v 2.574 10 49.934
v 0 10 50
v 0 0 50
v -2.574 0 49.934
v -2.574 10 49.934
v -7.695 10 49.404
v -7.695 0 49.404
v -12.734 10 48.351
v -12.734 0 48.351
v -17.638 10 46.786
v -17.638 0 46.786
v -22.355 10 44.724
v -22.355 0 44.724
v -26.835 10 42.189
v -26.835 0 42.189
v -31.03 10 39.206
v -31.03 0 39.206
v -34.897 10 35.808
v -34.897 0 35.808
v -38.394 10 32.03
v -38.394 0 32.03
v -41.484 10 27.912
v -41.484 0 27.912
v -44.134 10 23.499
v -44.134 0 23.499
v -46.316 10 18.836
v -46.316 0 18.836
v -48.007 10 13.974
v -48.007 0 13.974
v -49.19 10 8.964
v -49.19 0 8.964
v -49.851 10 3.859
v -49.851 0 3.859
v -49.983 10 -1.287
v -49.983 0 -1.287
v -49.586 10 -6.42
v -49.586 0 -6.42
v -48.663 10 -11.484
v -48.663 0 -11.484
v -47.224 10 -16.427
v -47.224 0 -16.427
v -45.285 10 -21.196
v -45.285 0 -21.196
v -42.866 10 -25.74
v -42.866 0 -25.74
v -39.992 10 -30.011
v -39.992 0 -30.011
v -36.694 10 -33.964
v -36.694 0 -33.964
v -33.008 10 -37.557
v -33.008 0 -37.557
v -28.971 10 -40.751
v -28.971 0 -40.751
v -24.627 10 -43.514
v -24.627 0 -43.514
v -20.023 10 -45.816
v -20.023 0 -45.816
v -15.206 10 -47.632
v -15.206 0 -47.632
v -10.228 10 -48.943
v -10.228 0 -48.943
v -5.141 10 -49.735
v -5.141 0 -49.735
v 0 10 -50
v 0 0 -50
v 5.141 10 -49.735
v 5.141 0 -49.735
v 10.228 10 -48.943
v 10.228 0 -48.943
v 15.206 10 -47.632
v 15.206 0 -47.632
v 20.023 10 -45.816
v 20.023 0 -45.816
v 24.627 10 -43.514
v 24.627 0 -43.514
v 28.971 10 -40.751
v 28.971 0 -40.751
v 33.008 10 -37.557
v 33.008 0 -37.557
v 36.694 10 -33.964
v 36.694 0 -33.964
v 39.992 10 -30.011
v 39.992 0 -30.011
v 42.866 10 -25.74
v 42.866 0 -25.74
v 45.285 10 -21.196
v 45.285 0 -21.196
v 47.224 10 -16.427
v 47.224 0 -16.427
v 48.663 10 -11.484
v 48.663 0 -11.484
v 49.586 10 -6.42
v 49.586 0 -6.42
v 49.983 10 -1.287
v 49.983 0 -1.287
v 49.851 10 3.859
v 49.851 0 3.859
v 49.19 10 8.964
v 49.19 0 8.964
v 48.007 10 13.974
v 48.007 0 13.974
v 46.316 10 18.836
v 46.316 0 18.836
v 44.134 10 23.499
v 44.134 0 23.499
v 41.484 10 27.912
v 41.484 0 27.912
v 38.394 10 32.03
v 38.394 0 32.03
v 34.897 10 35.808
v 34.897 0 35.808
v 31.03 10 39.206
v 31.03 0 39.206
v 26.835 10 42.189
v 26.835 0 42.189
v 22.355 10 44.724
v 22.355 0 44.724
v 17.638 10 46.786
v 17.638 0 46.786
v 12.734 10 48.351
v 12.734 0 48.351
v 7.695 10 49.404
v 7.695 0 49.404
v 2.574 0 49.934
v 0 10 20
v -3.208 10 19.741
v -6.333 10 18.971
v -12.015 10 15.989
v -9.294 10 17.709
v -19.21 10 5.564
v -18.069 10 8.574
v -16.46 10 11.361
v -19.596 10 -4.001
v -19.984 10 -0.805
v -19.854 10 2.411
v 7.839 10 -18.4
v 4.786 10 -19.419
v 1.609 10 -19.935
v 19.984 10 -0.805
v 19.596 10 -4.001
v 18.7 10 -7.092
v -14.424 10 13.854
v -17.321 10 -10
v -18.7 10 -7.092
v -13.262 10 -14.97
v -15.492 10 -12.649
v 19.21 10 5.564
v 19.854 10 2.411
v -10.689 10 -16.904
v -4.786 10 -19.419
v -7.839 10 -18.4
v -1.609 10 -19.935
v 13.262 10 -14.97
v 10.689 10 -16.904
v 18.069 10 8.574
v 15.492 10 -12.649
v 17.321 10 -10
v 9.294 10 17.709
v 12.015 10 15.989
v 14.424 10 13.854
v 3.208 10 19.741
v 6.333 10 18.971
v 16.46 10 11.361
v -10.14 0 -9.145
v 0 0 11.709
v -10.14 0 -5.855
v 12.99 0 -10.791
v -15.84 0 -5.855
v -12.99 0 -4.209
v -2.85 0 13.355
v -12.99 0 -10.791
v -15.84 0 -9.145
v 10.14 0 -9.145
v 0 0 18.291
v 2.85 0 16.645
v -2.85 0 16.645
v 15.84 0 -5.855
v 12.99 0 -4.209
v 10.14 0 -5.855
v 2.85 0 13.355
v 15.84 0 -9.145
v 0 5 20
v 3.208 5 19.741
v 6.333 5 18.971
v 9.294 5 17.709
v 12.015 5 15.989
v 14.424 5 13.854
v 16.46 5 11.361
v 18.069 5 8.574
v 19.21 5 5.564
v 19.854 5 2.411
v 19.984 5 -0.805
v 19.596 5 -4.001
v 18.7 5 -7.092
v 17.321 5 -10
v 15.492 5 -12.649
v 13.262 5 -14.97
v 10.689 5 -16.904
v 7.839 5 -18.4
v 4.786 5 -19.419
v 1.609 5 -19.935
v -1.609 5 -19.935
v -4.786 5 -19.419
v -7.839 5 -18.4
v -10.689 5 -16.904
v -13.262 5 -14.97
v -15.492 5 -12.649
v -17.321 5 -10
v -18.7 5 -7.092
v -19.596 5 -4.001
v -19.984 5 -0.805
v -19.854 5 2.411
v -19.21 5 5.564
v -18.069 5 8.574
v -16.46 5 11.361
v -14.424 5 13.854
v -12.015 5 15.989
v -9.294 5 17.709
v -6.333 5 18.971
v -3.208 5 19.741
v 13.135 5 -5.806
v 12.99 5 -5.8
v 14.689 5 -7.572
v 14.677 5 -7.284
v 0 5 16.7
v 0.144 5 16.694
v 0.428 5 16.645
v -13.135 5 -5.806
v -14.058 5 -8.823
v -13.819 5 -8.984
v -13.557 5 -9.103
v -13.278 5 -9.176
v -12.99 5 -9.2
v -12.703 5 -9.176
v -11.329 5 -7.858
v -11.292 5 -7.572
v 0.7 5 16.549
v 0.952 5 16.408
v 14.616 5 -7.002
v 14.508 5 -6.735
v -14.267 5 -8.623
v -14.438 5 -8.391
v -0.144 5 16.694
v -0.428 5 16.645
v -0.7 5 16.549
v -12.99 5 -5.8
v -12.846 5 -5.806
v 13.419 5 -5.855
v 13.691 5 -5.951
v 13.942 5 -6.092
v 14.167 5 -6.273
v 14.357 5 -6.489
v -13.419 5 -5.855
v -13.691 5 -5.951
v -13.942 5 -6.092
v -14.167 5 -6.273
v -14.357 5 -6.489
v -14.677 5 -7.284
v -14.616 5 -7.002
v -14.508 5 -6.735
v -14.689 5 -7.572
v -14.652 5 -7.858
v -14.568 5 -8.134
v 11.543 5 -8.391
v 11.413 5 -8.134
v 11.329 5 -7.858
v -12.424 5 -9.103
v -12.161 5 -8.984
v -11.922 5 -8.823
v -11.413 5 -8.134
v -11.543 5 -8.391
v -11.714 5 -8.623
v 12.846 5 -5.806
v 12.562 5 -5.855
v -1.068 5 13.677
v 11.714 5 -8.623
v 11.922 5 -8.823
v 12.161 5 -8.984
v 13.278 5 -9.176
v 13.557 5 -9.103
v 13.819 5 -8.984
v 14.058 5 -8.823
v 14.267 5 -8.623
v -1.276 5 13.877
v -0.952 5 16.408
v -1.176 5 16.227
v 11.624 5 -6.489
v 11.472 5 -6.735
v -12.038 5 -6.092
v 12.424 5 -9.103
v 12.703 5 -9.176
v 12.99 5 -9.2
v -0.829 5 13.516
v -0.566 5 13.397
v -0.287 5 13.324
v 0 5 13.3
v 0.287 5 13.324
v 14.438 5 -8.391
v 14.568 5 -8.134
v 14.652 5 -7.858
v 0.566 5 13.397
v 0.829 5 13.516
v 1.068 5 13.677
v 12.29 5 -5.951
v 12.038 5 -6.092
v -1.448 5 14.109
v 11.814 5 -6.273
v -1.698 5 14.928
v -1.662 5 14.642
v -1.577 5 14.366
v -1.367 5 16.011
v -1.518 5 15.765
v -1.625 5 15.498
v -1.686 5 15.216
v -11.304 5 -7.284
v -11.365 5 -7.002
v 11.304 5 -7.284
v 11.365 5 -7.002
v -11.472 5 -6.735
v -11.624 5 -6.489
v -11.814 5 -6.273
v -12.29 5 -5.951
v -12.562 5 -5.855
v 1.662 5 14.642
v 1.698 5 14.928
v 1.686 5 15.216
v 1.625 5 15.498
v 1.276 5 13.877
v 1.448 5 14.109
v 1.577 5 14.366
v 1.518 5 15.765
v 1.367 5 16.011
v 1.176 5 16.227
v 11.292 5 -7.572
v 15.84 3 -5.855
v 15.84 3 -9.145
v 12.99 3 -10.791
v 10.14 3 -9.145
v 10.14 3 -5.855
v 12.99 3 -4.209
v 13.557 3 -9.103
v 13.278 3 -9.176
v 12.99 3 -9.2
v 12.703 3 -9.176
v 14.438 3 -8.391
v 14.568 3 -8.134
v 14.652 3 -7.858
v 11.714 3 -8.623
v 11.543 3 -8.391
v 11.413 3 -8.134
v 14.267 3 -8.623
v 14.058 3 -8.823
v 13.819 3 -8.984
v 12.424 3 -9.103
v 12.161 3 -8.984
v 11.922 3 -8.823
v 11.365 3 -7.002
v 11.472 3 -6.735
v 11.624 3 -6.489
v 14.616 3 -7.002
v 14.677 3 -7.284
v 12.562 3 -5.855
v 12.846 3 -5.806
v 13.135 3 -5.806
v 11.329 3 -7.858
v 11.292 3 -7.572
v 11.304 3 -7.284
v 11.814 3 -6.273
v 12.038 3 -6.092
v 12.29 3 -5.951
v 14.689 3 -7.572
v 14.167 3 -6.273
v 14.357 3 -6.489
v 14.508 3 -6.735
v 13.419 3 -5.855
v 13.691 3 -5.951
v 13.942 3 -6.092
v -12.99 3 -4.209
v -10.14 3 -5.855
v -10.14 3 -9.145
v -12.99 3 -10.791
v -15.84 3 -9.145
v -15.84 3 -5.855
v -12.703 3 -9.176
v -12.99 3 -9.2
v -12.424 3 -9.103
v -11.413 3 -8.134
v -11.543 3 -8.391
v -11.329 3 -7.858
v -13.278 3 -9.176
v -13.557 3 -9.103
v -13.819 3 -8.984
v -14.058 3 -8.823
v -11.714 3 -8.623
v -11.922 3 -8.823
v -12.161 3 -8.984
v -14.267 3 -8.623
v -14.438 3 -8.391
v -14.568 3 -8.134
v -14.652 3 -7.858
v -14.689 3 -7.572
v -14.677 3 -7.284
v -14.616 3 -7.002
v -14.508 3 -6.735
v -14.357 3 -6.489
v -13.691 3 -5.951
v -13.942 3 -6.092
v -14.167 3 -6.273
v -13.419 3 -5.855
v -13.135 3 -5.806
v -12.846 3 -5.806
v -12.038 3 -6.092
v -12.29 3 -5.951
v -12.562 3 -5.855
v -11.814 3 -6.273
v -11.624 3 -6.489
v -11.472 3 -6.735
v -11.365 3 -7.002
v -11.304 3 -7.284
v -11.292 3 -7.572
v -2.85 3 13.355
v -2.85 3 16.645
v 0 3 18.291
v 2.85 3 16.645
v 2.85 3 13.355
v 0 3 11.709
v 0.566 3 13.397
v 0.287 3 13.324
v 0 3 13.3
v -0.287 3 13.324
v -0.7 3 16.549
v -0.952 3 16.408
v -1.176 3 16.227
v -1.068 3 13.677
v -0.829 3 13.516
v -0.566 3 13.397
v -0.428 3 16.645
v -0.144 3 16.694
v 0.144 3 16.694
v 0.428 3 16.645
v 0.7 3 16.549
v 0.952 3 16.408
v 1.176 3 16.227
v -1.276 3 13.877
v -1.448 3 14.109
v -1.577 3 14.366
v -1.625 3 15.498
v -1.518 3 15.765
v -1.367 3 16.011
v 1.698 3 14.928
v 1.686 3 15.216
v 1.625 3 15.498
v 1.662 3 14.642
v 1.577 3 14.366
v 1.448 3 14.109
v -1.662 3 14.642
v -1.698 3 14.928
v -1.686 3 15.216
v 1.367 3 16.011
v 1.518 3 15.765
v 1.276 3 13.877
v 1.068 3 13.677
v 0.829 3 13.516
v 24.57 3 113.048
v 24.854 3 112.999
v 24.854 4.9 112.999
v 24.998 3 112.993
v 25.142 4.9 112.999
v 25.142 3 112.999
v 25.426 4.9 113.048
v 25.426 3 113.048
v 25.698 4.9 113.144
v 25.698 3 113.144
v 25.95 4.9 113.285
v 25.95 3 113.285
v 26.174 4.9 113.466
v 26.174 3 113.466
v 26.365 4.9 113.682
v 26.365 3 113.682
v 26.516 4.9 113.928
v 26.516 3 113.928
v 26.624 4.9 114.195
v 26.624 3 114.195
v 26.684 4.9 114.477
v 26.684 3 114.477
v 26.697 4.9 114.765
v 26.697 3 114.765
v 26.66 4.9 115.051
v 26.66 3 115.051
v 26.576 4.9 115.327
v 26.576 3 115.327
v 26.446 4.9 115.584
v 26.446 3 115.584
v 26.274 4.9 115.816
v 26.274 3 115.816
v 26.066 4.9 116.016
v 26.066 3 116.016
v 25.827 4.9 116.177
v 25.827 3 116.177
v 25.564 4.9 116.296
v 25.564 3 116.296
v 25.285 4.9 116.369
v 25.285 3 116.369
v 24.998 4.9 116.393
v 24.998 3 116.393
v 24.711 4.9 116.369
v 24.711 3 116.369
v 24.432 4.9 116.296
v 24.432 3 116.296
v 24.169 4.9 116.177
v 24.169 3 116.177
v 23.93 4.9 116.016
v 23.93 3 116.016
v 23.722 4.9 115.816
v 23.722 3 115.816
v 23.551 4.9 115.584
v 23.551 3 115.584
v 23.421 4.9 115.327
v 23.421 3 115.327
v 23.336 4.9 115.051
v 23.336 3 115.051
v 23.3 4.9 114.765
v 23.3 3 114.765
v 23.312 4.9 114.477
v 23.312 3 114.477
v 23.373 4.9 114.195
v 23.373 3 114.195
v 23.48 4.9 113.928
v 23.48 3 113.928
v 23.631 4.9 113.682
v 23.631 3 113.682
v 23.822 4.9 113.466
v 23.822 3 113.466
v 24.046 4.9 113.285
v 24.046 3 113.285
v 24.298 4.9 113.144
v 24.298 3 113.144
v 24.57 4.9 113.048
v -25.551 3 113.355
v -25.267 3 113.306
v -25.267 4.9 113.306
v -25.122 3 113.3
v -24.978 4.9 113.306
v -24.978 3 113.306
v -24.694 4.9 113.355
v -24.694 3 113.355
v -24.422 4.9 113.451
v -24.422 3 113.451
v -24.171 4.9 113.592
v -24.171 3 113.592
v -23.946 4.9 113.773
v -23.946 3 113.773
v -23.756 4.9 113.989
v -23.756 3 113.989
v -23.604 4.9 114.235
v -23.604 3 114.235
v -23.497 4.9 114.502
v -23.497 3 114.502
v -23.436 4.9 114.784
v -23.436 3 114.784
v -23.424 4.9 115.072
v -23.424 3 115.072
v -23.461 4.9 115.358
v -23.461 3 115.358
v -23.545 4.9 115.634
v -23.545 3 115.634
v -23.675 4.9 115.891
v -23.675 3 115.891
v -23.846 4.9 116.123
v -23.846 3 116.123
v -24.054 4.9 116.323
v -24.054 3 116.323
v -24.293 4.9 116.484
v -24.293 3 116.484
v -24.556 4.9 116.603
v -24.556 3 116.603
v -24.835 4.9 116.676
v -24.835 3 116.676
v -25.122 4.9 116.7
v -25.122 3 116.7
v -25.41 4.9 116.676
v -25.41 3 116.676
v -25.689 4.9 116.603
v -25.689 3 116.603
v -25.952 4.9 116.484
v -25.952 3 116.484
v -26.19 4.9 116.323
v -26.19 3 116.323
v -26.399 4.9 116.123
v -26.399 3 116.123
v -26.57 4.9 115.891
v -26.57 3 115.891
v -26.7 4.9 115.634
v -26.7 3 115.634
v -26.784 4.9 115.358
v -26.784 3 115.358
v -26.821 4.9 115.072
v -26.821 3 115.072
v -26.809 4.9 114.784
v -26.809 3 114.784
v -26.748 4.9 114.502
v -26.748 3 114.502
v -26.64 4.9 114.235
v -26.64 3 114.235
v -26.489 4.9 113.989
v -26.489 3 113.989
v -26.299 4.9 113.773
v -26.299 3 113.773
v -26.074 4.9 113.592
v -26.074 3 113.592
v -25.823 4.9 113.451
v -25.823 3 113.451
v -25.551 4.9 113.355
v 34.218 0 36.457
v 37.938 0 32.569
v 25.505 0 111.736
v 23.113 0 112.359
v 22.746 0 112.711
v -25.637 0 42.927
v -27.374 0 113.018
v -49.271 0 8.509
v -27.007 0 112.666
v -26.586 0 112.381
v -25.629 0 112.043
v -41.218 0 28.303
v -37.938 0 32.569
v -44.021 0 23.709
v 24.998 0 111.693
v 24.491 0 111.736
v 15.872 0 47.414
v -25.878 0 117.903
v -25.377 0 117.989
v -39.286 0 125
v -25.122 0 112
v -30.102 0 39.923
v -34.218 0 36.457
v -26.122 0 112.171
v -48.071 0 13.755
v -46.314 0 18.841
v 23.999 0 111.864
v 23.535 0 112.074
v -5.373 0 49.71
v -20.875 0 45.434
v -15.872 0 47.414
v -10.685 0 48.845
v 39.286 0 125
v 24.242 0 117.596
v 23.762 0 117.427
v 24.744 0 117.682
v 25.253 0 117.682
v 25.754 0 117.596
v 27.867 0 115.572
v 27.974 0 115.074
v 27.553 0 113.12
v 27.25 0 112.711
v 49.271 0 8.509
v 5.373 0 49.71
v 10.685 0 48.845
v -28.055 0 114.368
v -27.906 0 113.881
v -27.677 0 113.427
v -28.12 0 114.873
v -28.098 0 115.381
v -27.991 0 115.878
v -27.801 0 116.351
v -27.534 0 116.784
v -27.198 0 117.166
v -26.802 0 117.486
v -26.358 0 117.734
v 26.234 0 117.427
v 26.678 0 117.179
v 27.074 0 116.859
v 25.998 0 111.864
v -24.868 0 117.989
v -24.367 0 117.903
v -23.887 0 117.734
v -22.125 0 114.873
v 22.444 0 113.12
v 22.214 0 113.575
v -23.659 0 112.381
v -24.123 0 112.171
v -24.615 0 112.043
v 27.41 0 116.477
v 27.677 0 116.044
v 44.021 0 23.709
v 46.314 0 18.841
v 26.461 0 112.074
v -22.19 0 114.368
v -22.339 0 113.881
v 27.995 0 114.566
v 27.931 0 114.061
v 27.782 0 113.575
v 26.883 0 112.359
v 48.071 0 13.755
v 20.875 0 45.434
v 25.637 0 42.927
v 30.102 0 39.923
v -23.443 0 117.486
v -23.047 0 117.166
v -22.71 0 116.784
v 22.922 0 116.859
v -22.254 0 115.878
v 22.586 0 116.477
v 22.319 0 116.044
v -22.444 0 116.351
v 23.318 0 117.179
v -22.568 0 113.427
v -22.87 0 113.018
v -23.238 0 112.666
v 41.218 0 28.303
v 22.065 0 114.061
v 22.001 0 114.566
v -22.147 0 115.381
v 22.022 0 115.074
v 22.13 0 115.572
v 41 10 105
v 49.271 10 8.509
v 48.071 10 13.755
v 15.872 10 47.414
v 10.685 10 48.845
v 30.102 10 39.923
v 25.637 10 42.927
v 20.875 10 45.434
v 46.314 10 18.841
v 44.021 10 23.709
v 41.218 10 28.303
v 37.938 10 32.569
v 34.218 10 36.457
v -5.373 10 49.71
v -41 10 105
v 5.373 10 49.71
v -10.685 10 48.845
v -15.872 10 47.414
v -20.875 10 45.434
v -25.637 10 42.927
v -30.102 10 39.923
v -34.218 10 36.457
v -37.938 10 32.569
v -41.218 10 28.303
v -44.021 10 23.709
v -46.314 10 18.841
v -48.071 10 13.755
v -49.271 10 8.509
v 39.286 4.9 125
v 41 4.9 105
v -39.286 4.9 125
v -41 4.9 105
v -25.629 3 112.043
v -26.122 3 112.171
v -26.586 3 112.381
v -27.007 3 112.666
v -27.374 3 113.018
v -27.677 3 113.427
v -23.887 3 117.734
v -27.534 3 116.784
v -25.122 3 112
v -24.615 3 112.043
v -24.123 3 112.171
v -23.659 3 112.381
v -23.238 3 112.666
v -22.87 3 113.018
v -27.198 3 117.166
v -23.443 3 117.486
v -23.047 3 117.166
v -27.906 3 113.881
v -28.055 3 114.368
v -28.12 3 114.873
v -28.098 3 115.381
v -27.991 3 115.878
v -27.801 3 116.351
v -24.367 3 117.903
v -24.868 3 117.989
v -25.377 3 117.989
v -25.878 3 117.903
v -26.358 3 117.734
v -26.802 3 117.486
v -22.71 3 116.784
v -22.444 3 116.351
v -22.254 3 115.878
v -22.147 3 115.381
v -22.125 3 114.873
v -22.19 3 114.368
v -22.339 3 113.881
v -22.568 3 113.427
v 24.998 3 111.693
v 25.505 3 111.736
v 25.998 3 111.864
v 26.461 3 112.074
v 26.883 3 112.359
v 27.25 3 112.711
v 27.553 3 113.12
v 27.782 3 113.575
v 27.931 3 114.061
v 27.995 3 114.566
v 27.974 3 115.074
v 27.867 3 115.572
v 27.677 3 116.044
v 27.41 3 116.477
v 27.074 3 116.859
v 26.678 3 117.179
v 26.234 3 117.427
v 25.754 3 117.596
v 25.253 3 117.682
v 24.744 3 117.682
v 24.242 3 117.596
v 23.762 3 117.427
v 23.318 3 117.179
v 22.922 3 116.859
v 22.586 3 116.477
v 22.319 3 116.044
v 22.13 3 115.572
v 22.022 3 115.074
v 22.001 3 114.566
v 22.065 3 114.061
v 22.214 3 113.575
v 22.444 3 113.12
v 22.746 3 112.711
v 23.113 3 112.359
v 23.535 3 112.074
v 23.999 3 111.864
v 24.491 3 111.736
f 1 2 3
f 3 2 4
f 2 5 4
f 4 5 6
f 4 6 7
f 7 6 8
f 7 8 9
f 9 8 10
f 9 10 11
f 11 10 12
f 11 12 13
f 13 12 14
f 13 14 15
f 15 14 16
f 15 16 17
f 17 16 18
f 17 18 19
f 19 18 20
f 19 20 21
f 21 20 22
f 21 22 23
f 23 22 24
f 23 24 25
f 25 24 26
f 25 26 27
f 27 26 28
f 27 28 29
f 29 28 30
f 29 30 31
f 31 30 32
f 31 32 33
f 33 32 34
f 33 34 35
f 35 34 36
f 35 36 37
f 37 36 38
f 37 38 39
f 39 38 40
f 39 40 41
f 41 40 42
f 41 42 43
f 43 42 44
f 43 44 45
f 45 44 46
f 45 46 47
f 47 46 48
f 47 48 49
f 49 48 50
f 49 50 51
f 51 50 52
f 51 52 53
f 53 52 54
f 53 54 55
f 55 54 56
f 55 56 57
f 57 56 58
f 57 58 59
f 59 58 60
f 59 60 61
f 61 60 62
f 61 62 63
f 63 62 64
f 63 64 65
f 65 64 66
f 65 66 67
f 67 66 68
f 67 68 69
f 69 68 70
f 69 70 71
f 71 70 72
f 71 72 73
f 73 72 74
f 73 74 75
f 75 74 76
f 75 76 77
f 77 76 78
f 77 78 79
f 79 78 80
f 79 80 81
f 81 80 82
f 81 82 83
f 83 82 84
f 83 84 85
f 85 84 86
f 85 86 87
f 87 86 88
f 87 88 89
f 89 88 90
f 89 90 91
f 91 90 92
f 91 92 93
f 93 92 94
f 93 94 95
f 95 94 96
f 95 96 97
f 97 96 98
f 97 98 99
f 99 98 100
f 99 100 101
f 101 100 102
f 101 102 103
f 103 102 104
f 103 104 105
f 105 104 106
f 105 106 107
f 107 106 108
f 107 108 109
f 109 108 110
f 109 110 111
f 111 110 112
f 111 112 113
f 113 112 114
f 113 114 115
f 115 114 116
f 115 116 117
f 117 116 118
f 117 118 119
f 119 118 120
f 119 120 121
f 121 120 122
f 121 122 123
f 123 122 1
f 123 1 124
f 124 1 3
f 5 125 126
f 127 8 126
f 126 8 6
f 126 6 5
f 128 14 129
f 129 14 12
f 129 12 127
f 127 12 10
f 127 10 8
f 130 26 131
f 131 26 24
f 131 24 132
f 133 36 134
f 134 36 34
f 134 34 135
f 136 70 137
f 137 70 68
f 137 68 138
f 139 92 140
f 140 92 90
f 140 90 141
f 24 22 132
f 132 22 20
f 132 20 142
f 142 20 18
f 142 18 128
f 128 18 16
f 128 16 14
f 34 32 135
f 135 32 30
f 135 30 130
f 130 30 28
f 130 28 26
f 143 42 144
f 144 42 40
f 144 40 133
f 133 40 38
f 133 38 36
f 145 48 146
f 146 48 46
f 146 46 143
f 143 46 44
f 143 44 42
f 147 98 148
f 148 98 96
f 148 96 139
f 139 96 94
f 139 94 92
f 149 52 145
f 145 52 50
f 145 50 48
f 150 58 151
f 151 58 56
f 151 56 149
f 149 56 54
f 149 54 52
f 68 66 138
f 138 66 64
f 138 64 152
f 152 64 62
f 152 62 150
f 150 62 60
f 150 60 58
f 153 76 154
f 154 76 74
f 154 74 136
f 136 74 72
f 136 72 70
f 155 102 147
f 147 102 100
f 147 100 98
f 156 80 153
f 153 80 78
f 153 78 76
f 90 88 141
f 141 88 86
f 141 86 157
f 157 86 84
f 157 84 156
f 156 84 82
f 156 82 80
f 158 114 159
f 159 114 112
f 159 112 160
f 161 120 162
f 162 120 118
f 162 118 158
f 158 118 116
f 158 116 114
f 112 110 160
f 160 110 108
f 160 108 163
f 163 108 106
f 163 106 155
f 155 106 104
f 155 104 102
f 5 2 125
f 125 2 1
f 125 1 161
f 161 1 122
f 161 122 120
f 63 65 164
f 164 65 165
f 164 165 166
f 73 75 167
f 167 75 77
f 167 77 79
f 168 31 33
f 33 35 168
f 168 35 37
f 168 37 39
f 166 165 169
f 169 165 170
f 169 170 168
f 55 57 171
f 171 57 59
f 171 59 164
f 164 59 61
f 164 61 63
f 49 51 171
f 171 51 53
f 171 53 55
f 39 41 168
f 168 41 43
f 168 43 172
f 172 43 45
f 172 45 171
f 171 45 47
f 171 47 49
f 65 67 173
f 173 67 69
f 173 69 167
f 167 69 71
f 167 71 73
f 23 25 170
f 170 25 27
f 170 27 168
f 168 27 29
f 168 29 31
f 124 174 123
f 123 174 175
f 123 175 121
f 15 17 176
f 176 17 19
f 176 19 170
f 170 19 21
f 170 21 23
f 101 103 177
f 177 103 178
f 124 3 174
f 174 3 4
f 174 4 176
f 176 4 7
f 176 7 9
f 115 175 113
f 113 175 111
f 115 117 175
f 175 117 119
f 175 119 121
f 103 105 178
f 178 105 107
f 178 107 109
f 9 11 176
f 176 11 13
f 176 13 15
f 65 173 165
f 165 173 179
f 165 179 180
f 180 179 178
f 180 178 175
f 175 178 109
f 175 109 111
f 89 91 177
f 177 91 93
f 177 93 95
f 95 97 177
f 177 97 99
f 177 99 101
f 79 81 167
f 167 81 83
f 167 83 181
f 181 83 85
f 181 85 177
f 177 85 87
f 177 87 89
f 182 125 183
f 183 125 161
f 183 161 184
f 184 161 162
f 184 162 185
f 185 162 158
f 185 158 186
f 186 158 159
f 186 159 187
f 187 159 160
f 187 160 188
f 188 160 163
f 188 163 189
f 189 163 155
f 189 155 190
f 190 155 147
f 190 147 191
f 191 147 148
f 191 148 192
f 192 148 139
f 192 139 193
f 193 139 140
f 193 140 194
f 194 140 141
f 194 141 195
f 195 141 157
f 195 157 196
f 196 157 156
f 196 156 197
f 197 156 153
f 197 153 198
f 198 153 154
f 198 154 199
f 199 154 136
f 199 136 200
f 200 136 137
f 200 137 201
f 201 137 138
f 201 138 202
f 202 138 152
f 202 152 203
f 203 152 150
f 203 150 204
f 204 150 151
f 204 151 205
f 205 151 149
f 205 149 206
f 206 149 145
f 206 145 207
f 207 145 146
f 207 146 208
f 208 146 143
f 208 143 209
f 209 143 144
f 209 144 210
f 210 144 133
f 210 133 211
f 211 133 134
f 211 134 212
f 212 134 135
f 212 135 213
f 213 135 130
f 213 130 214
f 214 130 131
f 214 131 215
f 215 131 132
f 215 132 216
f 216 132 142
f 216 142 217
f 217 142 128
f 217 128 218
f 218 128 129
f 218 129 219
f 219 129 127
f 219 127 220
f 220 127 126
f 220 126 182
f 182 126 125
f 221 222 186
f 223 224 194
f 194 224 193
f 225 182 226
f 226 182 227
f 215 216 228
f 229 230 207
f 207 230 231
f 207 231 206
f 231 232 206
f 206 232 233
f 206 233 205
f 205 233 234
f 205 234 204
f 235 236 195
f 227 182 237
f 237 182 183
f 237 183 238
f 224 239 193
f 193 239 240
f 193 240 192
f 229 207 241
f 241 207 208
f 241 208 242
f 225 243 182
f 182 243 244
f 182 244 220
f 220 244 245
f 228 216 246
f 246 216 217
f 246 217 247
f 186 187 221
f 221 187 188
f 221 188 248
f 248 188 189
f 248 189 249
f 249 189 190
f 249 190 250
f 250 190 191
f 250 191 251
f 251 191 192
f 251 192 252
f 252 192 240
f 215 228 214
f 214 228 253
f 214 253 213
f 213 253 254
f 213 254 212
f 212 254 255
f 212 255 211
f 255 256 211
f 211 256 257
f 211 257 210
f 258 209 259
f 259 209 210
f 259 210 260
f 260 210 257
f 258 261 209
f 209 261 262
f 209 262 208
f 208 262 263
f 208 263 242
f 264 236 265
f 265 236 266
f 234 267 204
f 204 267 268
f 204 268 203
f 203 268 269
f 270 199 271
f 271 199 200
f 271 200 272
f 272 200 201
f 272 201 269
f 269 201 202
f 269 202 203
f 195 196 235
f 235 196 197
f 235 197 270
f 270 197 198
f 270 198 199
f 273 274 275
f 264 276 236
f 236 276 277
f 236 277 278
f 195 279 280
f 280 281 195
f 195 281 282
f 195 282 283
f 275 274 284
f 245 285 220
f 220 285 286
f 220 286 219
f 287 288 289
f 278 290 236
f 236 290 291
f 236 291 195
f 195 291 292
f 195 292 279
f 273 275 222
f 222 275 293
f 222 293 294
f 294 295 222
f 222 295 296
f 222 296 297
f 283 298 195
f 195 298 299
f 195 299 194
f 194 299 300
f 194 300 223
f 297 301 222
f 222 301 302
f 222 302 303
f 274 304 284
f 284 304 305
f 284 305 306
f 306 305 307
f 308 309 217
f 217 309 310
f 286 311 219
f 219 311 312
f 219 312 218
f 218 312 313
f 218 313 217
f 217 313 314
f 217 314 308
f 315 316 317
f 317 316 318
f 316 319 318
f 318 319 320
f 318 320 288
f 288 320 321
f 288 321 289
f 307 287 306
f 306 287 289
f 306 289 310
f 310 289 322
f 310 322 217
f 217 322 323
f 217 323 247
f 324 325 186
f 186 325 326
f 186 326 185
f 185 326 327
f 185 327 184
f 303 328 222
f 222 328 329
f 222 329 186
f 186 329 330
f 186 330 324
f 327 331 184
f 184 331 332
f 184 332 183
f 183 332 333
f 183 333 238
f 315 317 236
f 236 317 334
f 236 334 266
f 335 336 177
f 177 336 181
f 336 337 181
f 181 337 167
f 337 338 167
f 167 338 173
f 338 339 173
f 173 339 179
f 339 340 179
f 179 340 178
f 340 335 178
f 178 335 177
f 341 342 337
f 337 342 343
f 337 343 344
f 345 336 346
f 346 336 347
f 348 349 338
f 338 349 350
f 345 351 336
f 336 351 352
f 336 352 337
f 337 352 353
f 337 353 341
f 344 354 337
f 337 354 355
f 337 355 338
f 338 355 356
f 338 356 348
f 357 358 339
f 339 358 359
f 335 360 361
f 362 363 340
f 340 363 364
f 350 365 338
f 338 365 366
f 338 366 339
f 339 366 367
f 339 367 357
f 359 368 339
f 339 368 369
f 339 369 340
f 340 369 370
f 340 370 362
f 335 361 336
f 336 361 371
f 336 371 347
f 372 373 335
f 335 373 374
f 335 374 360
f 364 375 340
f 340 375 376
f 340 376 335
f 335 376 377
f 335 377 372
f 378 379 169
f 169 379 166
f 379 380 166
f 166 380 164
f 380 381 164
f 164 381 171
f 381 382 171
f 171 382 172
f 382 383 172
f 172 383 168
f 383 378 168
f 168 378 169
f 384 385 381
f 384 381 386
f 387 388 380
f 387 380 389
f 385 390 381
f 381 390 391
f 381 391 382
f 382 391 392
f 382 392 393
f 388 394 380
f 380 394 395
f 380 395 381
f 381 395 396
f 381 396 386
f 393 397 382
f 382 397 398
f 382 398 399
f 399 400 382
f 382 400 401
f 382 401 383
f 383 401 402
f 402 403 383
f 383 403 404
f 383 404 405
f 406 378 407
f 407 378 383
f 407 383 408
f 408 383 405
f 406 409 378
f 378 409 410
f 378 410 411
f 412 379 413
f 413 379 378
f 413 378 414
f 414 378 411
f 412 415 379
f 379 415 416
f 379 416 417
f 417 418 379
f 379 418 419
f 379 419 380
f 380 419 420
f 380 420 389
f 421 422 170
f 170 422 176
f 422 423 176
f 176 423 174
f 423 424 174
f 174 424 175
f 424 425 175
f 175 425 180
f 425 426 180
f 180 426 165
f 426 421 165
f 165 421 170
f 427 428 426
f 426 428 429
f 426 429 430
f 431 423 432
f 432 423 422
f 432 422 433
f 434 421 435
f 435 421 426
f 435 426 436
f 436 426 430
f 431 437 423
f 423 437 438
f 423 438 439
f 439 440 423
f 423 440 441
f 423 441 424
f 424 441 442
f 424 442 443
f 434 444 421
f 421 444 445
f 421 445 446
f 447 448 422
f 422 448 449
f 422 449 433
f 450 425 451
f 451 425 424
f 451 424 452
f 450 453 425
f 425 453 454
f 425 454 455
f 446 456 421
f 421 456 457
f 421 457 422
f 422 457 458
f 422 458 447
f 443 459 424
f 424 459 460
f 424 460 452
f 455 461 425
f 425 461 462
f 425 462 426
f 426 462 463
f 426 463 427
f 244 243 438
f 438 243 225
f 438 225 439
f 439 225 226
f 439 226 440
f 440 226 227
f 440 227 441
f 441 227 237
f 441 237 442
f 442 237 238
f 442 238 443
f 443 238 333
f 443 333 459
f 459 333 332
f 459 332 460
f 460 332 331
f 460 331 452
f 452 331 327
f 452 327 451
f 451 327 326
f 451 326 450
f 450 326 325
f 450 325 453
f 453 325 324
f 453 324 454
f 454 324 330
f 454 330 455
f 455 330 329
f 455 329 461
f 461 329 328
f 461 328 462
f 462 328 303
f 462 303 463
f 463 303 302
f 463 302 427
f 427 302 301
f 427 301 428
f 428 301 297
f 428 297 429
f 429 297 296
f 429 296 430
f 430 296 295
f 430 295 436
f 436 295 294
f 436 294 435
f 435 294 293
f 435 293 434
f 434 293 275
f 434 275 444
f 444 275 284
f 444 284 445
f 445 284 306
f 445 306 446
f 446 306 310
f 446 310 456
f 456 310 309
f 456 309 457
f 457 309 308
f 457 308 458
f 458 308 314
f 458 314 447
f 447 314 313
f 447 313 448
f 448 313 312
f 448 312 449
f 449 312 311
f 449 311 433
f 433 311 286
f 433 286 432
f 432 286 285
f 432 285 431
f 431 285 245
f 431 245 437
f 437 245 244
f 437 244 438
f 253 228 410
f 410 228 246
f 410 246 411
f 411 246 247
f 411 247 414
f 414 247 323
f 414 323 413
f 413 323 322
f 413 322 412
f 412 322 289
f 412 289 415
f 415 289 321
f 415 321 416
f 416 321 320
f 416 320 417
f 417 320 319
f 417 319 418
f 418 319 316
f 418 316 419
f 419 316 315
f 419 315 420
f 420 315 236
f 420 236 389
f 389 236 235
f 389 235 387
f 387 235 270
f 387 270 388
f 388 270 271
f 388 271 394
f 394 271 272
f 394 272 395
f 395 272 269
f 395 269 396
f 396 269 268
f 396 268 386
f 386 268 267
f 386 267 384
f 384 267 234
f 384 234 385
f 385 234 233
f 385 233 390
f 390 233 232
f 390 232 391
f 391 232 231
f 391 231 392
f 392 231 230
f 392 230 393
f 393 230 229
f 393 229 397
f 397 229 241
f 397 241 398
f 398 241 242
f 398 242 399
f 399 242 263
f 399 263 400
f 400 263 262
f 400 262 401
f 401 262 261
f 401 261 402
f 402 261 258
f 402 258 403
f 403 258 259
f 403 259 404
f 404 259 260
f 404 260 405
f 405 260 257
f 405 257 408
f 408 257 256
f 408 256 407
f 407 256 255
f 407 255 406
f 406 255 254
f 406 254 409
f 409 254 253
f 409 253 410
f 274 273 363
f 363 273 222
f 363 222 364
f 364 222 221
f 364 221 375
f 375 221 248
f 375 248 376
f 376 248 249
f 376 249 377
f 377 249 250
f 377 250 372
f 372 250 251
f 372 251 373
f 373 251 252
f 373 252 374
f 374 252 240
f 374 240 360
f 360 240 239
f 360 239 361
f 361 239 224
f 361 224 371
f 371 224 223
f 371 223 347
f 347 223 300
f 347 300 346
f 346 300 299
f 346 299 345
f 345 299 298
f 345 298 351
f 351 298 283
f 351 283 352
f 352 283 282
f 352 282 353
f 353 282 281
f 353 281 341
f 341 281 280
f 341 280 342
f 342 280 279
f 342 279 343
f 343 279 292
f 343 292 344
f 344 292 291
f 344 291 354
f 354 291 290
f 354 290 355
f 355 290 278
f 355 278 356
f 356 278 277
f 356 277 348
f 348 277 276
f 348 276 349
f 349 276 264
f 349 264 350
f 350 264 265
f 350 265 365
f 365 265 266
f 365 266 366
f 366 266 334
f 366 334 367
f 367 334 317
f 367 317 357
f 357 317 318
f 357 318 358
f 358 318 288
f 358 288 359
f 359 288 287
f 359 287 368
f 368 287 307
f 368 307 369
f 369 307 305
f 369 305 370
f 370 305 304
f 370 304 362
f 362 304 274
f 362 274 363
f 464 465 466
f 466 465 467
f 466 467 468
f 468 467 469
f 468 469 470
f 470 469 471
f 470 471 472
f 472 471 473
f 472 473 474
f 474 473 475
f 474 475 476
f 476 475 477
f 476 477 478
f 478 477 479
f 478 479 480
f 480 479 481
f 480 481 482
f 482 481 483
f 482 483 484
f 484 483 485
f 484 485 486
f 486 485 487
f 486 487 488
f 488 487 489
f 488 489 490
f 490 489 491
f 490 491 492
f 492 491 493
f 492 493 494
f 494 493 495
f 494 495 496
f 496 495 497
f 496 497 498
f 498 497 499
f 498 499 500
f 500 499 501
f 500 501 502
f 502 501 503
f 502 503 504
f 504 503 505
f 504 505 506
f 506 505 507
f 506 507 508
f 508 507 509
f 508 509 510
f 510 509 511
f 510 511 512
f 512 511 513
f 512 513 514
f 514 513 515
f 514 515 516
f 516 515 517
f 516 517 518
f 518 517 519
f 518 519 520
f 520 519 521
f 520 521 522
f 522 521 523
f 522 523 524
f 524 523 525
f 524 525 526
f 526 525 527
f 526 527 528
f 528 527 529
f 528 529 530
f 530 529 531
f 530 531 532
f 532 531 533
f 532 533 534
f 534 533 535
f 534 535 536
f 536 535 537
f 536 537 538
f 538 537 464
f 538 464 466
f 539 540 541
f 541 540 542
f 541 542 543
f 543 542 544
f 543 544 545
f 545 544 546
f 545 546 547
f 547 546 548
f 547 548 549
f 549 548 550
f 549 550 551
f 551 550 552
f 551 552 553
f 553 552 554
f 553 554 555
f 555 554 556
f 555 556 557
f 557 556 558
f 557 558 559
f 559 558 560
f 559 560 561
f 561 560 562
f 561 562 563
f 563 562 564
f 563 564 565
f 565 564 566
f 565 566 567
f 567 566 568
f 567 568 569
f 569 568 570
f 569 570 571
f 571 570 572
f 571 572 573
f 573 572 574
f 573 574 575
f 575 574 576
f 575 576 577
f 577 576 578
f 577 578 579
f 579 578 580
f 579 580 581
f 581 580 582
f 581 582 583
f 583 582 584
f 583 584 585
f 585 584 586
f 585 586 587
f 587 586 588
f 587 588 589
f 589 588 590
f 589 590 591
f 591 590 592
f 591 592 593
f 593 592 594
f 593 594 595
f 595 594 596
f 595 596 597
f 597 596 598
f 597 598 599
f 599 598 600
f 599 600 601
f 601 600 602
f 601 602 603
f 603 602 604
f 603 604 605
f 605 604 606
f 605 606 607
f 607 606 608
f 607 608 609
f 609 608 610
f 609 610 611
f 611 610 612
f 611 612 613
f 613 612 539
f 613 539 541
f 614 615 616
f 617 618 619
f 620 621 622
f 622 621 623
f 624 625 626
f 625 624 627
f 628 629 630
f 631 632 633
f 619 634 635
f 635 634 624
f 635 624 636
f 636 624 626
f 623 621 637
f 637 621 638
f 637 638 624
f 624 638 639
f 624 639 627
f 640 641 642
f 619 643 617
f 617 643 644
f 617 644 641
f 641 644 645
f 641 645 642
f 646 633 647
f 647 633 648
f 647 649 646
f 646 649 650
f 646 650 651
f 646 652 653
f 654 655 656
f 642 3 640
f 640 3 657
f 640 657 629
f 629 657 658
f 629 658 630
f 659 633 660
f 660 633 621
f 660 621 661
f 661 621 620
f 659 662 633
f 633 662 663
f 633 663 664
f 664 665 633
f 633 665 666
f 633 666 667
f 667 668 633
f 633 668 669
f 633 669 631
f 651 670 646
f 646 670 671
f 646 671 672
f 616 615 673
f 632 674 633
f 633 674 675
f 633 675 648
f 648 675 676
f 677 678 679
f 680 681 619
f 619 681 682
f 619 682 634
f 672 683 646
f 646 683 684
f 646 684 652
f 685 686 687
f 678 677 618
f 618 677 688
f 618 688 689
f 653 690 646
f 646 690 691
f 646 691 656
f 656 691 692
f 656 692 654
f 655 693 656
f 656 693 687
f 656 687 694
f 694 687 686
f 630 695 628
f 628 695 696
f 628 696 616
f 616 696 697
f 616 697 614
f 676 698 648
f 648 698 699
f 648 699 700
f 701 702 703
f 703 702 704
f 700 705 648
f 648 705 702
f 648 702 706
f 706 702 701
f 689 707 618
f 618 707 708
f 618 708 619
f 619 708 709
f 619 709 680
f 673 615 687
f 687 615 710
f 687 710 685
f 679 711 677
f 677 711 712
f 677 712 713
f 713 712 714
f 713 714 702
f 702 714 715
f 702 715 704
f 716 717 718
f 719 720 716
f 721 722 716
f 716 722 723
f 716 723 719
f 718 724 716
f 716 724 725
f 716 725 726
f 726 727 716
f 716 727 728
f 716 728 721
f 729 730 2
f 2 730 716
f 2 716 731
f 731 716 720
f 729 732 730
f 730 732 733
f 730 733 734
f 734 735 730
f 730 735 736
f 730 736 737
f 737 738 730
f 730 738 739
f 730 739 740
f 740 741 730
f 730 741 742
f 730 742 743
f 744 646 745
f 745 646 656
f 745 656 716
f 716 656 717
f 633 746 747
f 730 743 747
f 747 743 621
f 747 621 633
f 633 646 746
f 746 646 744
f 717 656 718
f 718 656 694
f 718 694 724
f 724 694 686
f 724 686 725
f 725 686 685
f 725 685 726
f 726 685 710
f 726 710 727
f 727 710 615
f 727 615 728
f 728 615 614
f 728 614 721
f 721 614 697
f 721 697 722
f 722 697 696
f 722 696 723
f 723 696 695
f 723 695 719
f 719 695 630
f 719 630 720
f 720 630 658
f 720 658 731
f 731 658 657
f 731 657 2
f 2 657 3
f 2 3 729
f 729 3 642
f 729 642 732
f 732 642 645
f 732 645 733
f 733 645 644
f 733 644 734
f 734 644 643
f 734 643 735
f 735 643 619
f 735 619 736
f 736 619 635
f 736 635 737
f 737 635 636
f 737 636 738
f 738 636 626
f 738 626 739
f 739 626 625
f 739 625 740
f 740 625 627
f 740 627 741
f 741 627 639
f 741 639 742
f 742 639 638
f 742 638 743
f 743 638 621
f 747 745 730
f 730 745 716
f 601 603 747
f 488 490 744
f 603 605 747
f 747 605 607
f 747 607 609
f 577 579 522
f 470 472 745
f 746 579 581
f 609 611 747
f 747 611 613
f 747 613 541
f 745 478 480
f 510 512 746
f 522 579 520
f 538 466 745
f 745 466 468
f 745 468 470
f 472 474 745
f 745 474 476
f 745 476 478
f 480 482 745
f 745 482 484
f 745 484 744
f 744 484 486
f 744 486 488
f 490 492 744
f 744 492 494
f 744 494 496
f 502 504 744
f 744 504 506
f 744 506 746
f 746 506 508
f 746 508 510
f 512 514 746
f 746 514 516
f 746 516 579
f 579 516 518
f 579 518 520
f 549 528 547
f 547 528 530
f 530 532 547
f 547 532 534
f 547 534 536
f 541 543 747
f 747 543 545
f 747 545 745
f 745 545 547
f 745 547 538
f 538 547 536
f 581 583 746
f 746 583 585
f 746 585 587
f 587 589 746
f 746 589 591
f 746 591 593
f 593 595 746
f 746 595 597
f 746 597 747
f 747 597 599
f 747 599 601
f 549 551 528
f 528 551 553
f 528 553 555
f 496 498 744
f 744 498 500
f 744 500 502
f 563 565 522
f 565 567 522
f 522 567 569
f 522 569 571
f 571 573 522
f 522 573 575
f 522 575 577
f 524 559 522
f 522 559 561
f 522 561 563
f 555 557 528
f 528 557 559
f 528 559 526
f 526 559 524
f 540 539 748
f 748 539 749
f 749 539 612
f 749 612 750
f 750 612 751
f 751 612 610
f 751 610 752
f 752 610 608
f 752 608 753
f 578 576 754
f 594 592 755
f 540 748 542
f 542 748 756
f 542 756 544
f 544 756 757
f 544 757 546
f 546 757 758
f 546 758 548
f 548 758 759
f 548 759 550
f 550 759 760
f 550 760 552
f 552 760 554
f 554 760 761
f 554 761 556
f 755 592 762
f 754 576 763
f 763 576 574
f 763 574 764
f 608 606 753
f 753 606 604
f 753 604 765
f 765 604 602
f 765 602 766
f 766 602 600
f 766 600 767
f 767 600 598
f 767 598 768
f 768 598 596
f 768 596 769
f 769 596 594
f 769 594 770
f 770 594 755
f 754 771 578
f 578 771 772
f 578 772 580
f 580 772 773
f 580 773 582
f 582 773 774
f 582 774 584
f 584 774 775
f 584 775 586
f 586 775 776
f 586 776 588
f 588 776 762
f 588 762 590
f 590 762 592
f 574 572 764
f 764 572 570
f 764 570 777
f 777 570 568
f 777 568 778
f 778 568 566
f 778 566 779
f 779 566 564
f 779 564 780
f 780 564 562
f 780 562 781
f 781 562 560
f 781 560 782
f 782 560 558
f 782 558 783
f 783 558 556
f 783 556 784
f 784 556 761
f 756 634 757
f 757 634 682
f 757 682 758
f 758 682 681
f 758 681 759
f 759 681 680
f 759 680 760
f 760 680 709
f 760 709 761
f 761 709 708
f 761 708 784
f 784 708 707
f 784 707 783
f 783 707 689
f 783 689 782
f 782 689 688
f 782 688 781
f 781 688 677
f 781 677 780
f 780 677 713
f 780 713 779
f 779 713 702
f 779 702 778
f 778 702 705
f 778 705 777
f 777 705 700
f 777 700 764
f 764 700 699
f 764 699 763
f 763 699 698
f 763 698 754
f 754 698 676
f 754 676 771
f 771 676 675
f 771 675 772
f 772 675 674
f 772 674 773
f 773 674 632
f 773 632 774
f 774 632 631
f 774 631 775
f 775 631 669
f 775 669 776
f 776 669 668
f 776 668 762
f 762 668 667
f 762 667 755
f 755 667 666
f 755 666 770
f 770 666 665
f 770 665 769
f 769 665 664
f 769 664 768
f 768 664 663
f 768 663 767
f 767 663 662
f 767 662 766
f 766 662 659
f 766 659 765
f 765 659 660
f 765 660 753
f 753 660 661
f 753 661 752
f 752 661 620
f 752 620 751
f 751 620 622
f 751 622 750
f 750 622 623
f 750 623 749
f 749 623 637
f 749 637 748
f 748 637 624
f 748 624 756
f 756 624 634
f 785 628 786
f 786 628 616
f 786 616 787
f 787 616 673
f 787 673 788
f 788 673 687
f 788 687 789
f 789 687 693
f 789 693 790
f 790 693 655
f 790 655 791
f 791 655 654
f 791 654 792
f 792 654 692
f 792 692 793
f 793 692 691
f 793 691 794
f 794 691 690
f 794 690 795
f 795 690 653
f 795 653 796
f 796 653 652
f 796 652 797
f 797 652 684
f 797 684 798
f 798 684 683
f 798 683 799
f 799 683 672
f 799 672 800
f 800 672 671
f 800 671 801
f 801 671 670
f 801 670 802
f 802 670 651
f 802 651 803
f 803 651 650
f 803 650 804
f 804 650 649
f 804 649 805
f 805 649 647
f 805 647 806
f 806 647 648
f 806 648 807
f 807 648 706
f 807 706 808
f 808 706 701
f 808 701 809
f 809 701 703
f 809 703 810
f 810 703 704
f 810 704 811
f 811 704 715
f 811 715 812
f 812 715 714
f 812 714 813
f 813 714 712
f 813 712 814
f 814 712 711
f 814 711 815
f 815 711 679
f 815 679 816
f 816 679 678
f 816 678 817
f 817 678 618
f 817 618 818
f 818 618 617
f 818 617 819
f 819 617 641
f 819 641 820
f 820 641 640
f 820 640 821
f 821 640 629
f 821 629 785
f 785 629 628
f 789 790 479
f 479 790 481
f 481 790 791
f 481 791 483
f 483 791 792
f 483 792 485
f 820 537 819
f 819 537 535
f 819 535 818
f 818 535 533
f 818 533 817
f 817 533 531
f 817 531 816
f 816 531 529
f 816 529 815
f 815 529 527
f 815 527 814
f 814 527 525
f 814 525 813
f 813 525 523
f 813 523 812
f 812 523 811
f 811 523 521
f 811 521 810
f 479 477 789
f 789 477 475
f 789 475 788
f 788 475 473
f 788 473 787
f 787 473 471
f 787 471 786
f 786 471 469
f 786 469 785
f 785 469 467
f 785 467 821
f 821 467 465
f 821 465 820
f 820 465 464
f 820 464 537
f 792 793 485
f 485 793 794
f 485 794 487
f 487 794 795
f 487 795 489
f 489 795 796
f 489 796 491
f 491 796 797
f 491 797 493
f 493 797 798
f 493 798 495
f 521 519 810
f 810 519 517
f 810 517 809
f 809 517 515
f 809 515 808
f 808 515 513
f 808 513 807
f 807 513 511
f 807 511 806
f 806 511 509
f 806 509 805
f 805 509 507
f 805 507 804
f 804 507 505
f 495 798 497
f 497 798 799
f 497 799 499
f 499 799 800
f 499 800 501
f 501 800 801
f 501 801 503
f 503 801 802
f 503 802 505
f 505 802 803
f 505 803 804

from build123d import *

# Parameters (mm, degrees)
SKETCH1_R           = 50
BOSS_EXTRUDE1_DEPTH = 10
SKETCH2_R           = 20
CUT_EXTRUDE1_DEPTH  = 5
CUT_EXTRUDE6_DEPTH  = 3
SKETCH8_R           = 1.7
CUT_EXTRUDE7_DEPTH  = 10
BOSS_EXTRUDE3_DEPTH = 10
SKETCH10_W          = 21
SKETCH10_H          = 41
CUT_EXTRUDE8_DEPTH  = 10
SKETCH11_W          = 21
SKETCH11_H          = 6.5
CUT_EXTRUDE9_DEPTH  = 1.5
SKETCH12_R          = 1.7
CUT_EXTRUDE10_DEPTH = 9
CUT_EXTRUDE11_DEPTH = 10
SKETCH14_W          = 121.865884167
SKETCH14_H          = 250
CUT_EXTRUDE12_DEPTH = 10
SKETCH18_R          = 1.7
CUT_EXTRUDE16_DEPTH = 5.1
SKETCH18_3_R        = 1.7
CUT_EXTRUDE17_DEPTH = 10
SKETCH19_R          = 3
CUT_EXTRUDE18_DEPTH = 3


with BuildPart() as part:
    # Sketch1 → Boss-Extrude1 (new body)
    with BuildSketch(Plane(origin=(0, 0, 0), x_dir=(1, 0, 0), z_dir=(0, 1, 0))):
        Circle(SKETCH1_R)
    extrude(amount=BOSS_EXTRUDE1_DEPTH)

    # Sketch2 → Cut-Extrude1 (cut)
    with BuildSketch(Plane(origin=(0, 10, 0), x_dir=(1, 0, 0), z_dir=(0, 1, 0))):
        Circle(SKETCH2_R)
    extrude(amount=-CUT_EXTRUDE1_DEPTH, mode=Mode.SUBTRACT)

    # Sketch7 → Cut-Extrude6 (cut)
    with BuildSketch(Plane.XZ):
        Polygon((12.990381057, -4.209103466), (10.140381057, -5.854551733), (10.140381057, -9.145448267), (12.990381057, -10.790896534), (15.840381057, -9.145448267), (15.840381057, -5.854551733), align=None)
        Polygon((-12.990381057, -4.209103466), (-15.840381057, -5.854551733), (-15.840381057, -9.145448267), (-12.990381057, -10.790896534), (-10.140381057, -9.145448267), (-10.140381057, -5.854551733), align=None)
        Polygon((-2.85, 16.645448267), (-2.85, 13.354551733), (0, 11.709103466), (2.85, 13.354551733), (2.85, 16.645448267), (0, 18.290896534), align=None)
    extrude(amount=-CUT_EXTRUDE6_DEPTH, mode=Mode.SUBTRACT)

    # Sketch8 → Cut-Extrude7 (cut)
    with BuildSketch(Plane.XZ):
        with Locations((0, 15)):
            Circle(SKETCH8_R)
        with Locations((12.990381057, -7.5)):
            Circle(SKETCH8_R)
        with Locations((-12.990381057, -7.5)):
            Circle(SKETCH8_R)
    extrude(amount=-CUT_EXTRUDE7_DEPTH, mode=Mode.SUBTRACT)


with BuildPart() as body_2:
    # Sketch9 → Boss-Extrude3 (new body)
    with BuildSketch(Plane.XZ):
        with BuildLine():
            Line((-50, 350), (-50, 0))
            ThreePointArc((-50, 0), (0, 50), (50, 0))
            Line((50, 0), (50, 350))
            Line((50, 350), (-50, 350))
        make_face()
    extrude(amount=-BOSS_EXTRUDE3_DEPTH)

    # Sketch10 → Cut-Extrude8 (cut)
    with BuildSketch(Plane.XZ):
        with Locations((0, 319.5)):
            Rectangle(SKETCH10_W, SKETCH10_H)
    extrude(amount=-CUT_EXTRUDE8_DEPTH, mode=Mode.SUBTRACT)

    # Sketch11 → Cut-Extrude9 (cut)
    with BuildSketch(Plane.XZ):
        with Locations((0, 295.75)):
            Rectangle(SKETCH11_W, SKETCH11_H)
        with Locations((0, 343.25)):
            Rectangle(SKETCH11_W, SKETCH11_H)
    extrude(amount=-CUT_EXTRUDE9_DEPTH, mode=Mode.SUBTRACT)

    # Sketch12 → Cut-Extrude10 (cut)
    with BuildSketch(Plane.XZ.offset(-1.5)):
        with Locations((-5, 343.75)):
            Circle(SKETCH12_R)
        with Locations((5, 343.75)):
            Circle(SKETCH12_R)
        with Locations((-5, 295.25)):
            Circle(SKETCH12_R)
        with Locations((5, 295.25)):
            Circle(SKETCH12_R)
    extrude(amount=-CUT_EXTRUDE10_DEPTH, mode=Mode.SUBTRACT)

    # Sketch13 → Cut-Extrude11 (cut)
    with BuildSketch(Plane.XZ):
        with BuildLine():
            Line((-50, 350), (-50, 0))
            ThreePointArc((-50, 0), (-49.817332452, 4.270057067), (-49.270664506, 8.5089141))
            Line((-49.270664506, 8.5089141), (-20, 350))
            Line((-20, 350), (-50, 350))
        make_face()
        with BuildLine():
            Line((20, 350), (49.270664506, 8.5089141))
            ThreePointArc((49.270664506, 8.5089141), (49.817332452, 4.270057067), (50, 0))
            Line((50, 0), (50, 350))
            Line((50, 350), (20, 350))
        make_face()
    extrude(amount=-CUT_EXTRUDE11_DEPTH, mode=Mode.SUBTRACT)

    # Sketch14 → Cut-Extrude12 (cut)
    with BuildSketch(Plane.XZ):
        with Locations((-3.231493741, 250)):
            Rectangle(SKETCH14_W, SKETCH14_H)
    extrude(amount=-CUT_EXTRUDE12_DEPTH, mode=Mode.SUBTRACT)

    # Sketch18 → Cut-Extrude16 (cut)
    with BuildSketch(Plane(origin=(0, 10, 0), x_dir=(1, 0, 0), z_dir=(0, 1, 0))):
        Polygon((41, -105), (-41, -105), (-39.285714286, -125), (39.285714286, -125), align=None)
        with Locations((-25.122464826, -115)):
            Circle(SKETCH18_R, mode=Mode.SUBTRACT)
        with Locations((24.998120775, -114.693099561)):
            Circle(SKETCH18_R, mode=Mode.SUBTRACT)
    extrude(amount=-CUT_EXTRUDE16_DEPTH, mode=Mode.SUBTRACT)

    # Sketch18<3> → Cut-Extrude17 (cut)
    with BuildSketch(Plane(origin=(0, 10, 0), x_dir=(1, 0, 0), z_dir=(0, 1, 0))):
        with Locations((-25.122464826, -115)):
            Circle(SKETCH18_3_R)
        with Locations((24.998120775, -114.693099561)):
            Circle(SKETCH18_3_R)
    extrude(amount=-CUT_EXTRUDE17_DEPTH, mode=Mode.SUBTRACT)

    # Sketch19 → Cut-Extrude18 (cut)
    with BuildSketch(Plane.XZ):
        with Locations((-25.122464826, 115)):
            Circle(SKETCH19_R)
        with Locations((24.998120775, 114.693099561)):
            Circle(SKETCH19_R)
    extrude(amount=-CUT_EXTRUDE18_DEPTH, mode=Mode.SUBTRACT)


solid = Compound([part.part, body_2.part])
